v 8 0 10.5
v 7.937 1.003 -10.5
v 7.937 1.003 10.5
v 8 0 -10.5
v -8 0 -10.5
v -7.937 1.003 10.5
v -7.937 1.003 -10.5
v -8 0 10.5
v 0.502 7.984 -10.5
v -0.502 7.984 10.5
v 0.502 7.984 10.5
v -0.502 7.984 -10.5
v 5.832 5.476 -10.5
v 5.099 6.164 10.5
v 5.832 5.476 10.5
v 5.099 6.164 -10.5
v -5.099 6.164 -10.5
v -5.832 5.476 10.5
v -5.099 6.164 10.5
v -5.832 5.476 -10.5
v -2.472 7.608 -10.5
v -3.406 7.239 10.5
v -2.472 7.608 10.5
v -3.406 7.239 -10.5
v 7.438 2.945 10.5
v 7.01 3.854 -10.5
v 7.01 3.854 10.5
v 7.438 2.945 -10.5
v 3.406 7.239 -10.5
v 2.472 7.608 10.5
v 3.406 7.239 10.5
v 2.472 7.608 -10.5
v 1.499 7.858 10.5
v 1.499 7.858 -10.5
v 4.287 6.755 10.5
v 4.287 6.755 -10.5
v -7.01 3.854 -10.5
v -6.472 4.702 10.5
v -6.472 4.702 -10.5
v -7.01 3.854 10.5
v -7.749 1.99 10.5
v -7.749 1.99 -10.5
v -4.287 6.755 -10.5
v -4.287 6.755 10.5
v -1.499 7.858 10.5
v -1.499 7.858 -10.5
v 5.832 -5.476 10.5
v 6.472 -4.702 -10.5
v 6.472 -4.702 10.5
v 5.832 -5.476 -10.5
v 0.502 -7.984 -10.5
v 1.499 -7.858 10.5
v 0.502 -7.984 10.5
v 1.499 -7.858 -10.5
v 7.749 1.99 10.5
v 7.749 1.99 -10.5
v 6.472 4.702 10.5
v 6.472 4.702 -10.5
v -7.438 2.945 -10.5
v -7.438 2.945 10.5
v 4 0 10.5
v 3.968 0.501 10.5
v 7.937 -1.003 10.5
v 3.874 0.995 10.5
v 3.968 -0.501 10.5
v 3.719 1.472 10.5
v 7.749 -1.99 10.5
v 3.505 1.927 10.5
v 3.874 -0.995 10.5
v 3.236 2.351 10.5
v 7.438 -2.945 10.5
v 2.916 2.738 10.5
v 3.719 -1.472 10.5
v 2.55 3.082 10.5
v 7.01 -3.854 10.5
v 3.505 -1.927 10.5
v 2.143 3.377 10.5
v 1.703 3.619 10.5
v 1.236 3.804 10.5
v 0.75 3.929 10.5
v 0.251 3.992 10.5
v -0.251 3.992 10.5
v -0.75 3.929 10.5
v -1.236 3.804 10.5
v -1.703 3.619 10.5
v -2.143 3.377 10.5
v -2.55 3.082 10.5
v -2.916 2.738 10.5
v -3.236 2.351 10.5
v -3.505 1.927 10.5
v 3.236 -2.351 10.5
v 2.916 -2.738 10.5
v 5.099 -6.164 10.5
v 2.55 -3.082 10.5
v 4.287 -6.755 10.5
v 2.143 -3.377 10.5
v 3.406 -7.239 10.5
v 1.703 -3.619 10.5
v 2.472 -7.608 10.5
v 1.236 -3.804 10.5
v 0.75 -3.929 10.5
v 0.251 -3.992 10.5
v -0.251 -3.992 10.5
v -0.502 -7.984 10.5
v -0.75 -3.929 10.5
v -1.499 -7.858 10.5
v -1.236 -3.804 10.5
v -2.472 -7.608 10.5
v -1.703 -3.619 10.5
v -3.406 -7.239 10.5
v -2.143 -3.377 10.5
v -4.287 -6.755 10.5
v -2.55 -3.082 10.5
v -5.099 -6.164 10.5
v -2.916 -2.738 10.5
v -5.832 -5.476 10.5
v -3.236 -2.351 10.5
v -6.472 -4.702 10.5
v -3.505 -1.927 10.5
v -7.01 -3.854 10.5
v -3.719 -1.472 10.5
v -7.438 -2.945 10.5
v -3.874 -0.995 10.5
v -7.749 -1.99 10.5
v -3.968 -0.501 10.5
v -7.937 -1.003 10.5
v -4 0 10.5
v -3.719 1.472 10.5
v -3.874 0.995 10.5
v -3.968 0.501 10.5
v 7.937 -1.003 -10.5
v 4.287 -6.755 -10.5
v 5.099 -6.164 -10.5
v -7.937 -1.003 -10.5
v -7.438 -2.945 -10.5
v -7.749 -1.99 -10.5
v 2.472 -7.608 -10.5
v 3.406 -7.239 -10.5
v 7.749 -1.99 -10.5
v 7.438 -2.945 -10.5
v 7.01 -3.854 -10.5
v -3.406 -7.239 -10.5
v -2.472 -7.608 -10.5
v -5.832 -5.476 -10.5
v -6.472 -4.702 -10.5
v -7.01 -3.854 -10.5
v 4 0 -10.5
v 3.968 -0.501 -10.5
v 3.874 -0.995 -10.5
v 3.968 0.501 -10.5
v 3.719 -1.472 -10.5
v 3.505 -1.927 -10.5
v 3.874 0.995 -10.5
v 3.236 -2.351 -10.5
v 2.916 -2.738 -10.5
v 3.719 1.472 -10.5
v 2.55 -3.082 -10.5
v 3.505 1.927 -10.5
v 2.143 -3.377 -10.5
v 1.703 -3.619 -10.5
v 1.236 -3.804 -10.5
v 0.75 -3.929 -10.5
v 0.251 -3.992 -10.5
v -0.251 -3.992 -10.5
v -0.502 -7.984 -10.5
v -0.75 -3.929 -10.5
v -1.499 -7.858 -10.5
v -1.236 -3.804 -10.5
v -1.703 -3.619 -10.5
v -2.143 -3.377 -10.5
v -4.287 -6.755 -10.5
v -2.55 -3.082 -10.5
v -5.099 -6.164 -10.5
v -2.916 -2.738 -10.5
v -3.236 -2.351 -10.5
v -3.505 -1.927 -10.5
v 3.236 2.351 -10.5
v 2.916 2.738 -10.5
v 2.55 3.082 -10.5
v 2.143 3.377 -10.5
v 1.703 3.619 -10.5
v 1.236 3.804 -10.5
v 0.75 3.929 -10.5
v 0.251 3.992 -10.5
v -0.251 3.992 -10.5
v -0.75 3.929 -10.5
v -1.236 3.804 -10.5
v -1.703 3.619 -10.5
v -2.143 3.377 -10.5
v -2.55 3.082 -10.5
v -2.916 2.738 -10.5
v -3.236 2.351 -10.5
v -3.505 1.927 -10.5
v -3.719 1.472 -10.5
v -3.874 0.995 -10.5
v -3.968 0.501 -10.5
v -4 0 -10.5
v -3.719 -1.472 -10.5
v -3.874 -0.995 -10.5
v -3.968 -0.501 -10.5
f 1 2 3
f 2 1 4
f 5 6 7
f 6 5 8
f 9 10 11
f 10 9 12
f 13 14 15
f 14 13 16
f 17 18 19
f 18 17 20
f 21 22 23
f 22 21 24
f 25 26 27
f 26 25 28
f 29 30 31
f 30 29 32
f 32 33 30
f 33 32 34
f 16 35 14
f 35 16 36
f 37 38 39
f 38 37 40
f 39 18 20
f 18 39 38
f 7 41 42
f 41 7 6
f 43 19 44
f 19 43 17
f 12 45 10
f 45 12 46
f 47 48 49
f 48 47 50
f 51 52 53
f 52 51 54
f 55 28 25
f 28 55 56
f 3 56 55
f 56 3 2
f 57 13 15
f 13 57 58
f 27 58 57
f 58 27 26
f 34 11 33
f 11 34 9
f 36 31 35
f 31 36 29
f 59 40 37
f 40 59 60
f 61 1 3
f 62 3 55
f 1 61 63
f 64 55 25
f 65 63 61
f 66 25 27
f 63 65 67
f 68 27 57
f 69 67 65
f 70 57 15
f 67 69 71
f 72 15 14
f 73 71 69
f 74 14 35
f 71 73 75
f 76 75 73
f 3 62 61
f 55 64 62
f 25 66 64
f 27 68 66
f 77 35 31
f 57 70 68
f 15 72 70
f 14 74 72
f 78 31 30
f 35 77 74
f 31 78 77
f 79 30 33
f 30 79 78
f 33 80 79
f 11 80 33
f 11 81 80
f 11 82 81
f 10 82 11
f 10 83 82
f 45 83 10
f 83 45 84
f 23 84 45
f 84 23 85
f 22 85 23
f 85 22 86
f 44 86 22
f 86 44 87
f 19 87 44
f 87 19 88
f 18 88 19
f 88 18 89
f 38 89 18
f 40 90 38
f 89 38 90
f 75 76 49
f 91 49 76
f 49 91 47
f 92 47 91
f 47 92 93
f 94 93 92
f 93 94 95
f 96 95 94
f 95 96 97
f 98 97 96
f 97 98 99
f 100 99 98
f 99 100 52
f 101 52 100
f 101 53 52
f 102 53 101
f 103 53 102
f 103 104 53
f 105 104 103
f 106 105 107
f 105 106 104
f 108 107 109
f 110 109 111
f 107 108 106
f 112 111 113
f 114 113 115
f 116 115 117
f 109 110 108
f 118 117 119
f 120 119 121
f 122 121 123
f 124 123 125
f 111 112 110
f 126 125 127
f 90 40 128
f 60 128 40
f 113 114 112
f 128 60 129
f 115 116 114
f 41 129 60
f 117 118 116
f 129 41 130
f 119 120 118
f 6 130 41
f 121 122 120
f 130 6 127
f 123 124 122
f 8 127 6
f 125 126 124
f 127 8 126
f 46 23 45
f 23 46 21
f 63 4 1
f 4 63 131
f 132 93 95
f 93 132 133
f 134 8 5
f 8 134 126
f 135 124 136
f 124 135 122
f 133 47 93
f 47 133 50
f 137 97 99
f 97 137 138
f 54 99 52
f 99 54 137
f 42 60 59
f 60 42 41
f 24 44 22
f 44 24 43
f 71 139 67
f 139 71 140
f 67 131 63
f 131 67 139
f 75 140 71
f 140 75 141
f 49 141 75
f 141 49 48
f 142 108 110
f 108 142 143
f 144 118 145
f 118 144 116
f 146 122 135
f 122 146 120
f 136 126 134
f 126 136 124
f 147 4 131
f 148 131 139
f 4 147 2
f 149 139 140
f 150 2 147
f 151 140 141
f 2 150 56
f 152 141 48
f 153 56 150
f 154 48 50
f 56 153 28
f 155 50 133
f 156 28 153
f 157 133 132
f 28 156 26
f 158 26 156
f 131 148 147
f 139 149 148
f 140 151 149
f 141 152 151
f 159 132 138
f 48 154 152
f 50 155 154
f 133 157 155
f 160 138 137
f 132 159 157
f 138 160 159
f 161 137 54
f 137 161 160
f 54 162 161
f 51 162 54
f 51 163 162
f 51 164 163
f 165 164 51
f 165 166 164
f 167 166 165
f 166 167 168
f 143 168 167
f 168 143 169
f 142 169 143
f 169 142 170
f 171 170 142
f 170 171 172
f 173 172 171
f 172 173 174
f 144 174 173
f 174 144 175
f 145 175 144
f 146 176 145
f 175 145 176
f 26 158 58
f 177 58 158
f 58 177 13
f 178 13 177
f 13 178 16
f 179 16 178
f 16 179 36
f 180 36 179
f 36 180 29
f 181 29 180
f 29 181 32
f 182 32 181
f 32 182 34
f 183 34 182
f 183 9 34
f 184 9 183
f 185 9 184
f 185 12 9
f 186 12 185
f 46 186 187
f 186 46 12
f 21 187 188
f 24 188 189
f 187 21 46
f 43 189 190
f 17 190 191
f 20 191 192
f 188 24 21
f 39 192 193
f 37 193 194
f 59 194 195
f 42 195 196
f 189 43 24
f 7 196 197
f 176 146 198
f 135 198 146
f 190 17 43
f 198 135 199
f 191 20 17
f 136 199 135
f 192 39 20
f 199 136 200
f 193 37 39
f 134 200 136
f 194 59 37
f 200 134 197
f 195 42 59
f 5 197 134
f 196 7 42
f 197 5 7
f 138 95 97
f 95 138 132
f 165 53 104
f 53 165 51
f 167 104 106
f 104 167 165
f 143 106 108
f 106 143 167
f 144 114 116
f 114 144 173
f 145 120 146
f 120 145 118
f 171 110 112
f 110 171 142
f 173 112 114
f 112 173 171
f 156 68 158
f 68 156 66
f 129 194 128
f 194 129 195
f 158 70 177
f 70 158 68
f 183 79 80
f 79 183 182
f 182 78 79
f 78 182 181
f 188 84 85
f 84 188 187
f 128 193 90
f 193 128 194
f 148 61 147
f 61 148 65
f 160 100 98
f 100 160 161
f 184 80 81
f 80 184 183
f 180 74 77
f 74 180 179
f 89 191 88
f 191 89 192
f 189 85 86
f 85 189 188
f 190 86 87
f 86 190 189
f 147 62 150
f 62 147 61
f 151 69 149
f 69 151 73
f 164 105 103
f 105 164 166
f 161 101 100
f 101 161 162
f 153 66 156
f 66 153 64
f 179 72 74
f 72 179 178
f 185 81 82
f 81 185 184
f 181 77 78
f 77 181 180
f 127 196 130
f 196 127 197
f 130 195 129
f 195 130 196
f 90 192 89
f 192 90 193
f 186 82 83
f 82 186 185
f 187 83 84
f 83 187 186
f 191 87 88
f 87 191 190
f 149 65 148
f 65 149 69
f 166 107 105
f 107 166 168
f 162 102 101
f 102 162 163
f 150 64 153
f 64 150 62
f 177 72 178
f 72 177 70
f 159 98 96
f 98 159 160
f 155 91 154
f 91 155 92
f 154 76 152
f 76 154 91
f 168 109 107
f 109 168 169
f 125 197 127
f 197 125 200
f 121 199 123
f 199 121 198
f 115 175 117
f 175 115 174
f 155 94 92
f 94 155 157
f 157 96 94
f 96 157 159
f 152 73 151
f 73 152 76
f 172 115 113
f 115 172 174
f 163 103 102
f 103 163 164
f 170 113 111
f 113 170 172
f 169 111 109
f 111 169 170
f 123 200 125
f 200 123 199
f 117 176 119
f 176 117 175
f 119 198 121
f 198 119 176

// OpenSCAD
$fn = 50;


difference() {
	union() {
		translate(v = [0, 0, -10.5000000000]) {
			cylinder(h = 21, r = 8.0000000000);
		}
	}
	union() {
		translate(v = [0, 0, -100.0000000000]) {
			cylinder(h = 200, r = 4.0000000000);
		}
	}
}
